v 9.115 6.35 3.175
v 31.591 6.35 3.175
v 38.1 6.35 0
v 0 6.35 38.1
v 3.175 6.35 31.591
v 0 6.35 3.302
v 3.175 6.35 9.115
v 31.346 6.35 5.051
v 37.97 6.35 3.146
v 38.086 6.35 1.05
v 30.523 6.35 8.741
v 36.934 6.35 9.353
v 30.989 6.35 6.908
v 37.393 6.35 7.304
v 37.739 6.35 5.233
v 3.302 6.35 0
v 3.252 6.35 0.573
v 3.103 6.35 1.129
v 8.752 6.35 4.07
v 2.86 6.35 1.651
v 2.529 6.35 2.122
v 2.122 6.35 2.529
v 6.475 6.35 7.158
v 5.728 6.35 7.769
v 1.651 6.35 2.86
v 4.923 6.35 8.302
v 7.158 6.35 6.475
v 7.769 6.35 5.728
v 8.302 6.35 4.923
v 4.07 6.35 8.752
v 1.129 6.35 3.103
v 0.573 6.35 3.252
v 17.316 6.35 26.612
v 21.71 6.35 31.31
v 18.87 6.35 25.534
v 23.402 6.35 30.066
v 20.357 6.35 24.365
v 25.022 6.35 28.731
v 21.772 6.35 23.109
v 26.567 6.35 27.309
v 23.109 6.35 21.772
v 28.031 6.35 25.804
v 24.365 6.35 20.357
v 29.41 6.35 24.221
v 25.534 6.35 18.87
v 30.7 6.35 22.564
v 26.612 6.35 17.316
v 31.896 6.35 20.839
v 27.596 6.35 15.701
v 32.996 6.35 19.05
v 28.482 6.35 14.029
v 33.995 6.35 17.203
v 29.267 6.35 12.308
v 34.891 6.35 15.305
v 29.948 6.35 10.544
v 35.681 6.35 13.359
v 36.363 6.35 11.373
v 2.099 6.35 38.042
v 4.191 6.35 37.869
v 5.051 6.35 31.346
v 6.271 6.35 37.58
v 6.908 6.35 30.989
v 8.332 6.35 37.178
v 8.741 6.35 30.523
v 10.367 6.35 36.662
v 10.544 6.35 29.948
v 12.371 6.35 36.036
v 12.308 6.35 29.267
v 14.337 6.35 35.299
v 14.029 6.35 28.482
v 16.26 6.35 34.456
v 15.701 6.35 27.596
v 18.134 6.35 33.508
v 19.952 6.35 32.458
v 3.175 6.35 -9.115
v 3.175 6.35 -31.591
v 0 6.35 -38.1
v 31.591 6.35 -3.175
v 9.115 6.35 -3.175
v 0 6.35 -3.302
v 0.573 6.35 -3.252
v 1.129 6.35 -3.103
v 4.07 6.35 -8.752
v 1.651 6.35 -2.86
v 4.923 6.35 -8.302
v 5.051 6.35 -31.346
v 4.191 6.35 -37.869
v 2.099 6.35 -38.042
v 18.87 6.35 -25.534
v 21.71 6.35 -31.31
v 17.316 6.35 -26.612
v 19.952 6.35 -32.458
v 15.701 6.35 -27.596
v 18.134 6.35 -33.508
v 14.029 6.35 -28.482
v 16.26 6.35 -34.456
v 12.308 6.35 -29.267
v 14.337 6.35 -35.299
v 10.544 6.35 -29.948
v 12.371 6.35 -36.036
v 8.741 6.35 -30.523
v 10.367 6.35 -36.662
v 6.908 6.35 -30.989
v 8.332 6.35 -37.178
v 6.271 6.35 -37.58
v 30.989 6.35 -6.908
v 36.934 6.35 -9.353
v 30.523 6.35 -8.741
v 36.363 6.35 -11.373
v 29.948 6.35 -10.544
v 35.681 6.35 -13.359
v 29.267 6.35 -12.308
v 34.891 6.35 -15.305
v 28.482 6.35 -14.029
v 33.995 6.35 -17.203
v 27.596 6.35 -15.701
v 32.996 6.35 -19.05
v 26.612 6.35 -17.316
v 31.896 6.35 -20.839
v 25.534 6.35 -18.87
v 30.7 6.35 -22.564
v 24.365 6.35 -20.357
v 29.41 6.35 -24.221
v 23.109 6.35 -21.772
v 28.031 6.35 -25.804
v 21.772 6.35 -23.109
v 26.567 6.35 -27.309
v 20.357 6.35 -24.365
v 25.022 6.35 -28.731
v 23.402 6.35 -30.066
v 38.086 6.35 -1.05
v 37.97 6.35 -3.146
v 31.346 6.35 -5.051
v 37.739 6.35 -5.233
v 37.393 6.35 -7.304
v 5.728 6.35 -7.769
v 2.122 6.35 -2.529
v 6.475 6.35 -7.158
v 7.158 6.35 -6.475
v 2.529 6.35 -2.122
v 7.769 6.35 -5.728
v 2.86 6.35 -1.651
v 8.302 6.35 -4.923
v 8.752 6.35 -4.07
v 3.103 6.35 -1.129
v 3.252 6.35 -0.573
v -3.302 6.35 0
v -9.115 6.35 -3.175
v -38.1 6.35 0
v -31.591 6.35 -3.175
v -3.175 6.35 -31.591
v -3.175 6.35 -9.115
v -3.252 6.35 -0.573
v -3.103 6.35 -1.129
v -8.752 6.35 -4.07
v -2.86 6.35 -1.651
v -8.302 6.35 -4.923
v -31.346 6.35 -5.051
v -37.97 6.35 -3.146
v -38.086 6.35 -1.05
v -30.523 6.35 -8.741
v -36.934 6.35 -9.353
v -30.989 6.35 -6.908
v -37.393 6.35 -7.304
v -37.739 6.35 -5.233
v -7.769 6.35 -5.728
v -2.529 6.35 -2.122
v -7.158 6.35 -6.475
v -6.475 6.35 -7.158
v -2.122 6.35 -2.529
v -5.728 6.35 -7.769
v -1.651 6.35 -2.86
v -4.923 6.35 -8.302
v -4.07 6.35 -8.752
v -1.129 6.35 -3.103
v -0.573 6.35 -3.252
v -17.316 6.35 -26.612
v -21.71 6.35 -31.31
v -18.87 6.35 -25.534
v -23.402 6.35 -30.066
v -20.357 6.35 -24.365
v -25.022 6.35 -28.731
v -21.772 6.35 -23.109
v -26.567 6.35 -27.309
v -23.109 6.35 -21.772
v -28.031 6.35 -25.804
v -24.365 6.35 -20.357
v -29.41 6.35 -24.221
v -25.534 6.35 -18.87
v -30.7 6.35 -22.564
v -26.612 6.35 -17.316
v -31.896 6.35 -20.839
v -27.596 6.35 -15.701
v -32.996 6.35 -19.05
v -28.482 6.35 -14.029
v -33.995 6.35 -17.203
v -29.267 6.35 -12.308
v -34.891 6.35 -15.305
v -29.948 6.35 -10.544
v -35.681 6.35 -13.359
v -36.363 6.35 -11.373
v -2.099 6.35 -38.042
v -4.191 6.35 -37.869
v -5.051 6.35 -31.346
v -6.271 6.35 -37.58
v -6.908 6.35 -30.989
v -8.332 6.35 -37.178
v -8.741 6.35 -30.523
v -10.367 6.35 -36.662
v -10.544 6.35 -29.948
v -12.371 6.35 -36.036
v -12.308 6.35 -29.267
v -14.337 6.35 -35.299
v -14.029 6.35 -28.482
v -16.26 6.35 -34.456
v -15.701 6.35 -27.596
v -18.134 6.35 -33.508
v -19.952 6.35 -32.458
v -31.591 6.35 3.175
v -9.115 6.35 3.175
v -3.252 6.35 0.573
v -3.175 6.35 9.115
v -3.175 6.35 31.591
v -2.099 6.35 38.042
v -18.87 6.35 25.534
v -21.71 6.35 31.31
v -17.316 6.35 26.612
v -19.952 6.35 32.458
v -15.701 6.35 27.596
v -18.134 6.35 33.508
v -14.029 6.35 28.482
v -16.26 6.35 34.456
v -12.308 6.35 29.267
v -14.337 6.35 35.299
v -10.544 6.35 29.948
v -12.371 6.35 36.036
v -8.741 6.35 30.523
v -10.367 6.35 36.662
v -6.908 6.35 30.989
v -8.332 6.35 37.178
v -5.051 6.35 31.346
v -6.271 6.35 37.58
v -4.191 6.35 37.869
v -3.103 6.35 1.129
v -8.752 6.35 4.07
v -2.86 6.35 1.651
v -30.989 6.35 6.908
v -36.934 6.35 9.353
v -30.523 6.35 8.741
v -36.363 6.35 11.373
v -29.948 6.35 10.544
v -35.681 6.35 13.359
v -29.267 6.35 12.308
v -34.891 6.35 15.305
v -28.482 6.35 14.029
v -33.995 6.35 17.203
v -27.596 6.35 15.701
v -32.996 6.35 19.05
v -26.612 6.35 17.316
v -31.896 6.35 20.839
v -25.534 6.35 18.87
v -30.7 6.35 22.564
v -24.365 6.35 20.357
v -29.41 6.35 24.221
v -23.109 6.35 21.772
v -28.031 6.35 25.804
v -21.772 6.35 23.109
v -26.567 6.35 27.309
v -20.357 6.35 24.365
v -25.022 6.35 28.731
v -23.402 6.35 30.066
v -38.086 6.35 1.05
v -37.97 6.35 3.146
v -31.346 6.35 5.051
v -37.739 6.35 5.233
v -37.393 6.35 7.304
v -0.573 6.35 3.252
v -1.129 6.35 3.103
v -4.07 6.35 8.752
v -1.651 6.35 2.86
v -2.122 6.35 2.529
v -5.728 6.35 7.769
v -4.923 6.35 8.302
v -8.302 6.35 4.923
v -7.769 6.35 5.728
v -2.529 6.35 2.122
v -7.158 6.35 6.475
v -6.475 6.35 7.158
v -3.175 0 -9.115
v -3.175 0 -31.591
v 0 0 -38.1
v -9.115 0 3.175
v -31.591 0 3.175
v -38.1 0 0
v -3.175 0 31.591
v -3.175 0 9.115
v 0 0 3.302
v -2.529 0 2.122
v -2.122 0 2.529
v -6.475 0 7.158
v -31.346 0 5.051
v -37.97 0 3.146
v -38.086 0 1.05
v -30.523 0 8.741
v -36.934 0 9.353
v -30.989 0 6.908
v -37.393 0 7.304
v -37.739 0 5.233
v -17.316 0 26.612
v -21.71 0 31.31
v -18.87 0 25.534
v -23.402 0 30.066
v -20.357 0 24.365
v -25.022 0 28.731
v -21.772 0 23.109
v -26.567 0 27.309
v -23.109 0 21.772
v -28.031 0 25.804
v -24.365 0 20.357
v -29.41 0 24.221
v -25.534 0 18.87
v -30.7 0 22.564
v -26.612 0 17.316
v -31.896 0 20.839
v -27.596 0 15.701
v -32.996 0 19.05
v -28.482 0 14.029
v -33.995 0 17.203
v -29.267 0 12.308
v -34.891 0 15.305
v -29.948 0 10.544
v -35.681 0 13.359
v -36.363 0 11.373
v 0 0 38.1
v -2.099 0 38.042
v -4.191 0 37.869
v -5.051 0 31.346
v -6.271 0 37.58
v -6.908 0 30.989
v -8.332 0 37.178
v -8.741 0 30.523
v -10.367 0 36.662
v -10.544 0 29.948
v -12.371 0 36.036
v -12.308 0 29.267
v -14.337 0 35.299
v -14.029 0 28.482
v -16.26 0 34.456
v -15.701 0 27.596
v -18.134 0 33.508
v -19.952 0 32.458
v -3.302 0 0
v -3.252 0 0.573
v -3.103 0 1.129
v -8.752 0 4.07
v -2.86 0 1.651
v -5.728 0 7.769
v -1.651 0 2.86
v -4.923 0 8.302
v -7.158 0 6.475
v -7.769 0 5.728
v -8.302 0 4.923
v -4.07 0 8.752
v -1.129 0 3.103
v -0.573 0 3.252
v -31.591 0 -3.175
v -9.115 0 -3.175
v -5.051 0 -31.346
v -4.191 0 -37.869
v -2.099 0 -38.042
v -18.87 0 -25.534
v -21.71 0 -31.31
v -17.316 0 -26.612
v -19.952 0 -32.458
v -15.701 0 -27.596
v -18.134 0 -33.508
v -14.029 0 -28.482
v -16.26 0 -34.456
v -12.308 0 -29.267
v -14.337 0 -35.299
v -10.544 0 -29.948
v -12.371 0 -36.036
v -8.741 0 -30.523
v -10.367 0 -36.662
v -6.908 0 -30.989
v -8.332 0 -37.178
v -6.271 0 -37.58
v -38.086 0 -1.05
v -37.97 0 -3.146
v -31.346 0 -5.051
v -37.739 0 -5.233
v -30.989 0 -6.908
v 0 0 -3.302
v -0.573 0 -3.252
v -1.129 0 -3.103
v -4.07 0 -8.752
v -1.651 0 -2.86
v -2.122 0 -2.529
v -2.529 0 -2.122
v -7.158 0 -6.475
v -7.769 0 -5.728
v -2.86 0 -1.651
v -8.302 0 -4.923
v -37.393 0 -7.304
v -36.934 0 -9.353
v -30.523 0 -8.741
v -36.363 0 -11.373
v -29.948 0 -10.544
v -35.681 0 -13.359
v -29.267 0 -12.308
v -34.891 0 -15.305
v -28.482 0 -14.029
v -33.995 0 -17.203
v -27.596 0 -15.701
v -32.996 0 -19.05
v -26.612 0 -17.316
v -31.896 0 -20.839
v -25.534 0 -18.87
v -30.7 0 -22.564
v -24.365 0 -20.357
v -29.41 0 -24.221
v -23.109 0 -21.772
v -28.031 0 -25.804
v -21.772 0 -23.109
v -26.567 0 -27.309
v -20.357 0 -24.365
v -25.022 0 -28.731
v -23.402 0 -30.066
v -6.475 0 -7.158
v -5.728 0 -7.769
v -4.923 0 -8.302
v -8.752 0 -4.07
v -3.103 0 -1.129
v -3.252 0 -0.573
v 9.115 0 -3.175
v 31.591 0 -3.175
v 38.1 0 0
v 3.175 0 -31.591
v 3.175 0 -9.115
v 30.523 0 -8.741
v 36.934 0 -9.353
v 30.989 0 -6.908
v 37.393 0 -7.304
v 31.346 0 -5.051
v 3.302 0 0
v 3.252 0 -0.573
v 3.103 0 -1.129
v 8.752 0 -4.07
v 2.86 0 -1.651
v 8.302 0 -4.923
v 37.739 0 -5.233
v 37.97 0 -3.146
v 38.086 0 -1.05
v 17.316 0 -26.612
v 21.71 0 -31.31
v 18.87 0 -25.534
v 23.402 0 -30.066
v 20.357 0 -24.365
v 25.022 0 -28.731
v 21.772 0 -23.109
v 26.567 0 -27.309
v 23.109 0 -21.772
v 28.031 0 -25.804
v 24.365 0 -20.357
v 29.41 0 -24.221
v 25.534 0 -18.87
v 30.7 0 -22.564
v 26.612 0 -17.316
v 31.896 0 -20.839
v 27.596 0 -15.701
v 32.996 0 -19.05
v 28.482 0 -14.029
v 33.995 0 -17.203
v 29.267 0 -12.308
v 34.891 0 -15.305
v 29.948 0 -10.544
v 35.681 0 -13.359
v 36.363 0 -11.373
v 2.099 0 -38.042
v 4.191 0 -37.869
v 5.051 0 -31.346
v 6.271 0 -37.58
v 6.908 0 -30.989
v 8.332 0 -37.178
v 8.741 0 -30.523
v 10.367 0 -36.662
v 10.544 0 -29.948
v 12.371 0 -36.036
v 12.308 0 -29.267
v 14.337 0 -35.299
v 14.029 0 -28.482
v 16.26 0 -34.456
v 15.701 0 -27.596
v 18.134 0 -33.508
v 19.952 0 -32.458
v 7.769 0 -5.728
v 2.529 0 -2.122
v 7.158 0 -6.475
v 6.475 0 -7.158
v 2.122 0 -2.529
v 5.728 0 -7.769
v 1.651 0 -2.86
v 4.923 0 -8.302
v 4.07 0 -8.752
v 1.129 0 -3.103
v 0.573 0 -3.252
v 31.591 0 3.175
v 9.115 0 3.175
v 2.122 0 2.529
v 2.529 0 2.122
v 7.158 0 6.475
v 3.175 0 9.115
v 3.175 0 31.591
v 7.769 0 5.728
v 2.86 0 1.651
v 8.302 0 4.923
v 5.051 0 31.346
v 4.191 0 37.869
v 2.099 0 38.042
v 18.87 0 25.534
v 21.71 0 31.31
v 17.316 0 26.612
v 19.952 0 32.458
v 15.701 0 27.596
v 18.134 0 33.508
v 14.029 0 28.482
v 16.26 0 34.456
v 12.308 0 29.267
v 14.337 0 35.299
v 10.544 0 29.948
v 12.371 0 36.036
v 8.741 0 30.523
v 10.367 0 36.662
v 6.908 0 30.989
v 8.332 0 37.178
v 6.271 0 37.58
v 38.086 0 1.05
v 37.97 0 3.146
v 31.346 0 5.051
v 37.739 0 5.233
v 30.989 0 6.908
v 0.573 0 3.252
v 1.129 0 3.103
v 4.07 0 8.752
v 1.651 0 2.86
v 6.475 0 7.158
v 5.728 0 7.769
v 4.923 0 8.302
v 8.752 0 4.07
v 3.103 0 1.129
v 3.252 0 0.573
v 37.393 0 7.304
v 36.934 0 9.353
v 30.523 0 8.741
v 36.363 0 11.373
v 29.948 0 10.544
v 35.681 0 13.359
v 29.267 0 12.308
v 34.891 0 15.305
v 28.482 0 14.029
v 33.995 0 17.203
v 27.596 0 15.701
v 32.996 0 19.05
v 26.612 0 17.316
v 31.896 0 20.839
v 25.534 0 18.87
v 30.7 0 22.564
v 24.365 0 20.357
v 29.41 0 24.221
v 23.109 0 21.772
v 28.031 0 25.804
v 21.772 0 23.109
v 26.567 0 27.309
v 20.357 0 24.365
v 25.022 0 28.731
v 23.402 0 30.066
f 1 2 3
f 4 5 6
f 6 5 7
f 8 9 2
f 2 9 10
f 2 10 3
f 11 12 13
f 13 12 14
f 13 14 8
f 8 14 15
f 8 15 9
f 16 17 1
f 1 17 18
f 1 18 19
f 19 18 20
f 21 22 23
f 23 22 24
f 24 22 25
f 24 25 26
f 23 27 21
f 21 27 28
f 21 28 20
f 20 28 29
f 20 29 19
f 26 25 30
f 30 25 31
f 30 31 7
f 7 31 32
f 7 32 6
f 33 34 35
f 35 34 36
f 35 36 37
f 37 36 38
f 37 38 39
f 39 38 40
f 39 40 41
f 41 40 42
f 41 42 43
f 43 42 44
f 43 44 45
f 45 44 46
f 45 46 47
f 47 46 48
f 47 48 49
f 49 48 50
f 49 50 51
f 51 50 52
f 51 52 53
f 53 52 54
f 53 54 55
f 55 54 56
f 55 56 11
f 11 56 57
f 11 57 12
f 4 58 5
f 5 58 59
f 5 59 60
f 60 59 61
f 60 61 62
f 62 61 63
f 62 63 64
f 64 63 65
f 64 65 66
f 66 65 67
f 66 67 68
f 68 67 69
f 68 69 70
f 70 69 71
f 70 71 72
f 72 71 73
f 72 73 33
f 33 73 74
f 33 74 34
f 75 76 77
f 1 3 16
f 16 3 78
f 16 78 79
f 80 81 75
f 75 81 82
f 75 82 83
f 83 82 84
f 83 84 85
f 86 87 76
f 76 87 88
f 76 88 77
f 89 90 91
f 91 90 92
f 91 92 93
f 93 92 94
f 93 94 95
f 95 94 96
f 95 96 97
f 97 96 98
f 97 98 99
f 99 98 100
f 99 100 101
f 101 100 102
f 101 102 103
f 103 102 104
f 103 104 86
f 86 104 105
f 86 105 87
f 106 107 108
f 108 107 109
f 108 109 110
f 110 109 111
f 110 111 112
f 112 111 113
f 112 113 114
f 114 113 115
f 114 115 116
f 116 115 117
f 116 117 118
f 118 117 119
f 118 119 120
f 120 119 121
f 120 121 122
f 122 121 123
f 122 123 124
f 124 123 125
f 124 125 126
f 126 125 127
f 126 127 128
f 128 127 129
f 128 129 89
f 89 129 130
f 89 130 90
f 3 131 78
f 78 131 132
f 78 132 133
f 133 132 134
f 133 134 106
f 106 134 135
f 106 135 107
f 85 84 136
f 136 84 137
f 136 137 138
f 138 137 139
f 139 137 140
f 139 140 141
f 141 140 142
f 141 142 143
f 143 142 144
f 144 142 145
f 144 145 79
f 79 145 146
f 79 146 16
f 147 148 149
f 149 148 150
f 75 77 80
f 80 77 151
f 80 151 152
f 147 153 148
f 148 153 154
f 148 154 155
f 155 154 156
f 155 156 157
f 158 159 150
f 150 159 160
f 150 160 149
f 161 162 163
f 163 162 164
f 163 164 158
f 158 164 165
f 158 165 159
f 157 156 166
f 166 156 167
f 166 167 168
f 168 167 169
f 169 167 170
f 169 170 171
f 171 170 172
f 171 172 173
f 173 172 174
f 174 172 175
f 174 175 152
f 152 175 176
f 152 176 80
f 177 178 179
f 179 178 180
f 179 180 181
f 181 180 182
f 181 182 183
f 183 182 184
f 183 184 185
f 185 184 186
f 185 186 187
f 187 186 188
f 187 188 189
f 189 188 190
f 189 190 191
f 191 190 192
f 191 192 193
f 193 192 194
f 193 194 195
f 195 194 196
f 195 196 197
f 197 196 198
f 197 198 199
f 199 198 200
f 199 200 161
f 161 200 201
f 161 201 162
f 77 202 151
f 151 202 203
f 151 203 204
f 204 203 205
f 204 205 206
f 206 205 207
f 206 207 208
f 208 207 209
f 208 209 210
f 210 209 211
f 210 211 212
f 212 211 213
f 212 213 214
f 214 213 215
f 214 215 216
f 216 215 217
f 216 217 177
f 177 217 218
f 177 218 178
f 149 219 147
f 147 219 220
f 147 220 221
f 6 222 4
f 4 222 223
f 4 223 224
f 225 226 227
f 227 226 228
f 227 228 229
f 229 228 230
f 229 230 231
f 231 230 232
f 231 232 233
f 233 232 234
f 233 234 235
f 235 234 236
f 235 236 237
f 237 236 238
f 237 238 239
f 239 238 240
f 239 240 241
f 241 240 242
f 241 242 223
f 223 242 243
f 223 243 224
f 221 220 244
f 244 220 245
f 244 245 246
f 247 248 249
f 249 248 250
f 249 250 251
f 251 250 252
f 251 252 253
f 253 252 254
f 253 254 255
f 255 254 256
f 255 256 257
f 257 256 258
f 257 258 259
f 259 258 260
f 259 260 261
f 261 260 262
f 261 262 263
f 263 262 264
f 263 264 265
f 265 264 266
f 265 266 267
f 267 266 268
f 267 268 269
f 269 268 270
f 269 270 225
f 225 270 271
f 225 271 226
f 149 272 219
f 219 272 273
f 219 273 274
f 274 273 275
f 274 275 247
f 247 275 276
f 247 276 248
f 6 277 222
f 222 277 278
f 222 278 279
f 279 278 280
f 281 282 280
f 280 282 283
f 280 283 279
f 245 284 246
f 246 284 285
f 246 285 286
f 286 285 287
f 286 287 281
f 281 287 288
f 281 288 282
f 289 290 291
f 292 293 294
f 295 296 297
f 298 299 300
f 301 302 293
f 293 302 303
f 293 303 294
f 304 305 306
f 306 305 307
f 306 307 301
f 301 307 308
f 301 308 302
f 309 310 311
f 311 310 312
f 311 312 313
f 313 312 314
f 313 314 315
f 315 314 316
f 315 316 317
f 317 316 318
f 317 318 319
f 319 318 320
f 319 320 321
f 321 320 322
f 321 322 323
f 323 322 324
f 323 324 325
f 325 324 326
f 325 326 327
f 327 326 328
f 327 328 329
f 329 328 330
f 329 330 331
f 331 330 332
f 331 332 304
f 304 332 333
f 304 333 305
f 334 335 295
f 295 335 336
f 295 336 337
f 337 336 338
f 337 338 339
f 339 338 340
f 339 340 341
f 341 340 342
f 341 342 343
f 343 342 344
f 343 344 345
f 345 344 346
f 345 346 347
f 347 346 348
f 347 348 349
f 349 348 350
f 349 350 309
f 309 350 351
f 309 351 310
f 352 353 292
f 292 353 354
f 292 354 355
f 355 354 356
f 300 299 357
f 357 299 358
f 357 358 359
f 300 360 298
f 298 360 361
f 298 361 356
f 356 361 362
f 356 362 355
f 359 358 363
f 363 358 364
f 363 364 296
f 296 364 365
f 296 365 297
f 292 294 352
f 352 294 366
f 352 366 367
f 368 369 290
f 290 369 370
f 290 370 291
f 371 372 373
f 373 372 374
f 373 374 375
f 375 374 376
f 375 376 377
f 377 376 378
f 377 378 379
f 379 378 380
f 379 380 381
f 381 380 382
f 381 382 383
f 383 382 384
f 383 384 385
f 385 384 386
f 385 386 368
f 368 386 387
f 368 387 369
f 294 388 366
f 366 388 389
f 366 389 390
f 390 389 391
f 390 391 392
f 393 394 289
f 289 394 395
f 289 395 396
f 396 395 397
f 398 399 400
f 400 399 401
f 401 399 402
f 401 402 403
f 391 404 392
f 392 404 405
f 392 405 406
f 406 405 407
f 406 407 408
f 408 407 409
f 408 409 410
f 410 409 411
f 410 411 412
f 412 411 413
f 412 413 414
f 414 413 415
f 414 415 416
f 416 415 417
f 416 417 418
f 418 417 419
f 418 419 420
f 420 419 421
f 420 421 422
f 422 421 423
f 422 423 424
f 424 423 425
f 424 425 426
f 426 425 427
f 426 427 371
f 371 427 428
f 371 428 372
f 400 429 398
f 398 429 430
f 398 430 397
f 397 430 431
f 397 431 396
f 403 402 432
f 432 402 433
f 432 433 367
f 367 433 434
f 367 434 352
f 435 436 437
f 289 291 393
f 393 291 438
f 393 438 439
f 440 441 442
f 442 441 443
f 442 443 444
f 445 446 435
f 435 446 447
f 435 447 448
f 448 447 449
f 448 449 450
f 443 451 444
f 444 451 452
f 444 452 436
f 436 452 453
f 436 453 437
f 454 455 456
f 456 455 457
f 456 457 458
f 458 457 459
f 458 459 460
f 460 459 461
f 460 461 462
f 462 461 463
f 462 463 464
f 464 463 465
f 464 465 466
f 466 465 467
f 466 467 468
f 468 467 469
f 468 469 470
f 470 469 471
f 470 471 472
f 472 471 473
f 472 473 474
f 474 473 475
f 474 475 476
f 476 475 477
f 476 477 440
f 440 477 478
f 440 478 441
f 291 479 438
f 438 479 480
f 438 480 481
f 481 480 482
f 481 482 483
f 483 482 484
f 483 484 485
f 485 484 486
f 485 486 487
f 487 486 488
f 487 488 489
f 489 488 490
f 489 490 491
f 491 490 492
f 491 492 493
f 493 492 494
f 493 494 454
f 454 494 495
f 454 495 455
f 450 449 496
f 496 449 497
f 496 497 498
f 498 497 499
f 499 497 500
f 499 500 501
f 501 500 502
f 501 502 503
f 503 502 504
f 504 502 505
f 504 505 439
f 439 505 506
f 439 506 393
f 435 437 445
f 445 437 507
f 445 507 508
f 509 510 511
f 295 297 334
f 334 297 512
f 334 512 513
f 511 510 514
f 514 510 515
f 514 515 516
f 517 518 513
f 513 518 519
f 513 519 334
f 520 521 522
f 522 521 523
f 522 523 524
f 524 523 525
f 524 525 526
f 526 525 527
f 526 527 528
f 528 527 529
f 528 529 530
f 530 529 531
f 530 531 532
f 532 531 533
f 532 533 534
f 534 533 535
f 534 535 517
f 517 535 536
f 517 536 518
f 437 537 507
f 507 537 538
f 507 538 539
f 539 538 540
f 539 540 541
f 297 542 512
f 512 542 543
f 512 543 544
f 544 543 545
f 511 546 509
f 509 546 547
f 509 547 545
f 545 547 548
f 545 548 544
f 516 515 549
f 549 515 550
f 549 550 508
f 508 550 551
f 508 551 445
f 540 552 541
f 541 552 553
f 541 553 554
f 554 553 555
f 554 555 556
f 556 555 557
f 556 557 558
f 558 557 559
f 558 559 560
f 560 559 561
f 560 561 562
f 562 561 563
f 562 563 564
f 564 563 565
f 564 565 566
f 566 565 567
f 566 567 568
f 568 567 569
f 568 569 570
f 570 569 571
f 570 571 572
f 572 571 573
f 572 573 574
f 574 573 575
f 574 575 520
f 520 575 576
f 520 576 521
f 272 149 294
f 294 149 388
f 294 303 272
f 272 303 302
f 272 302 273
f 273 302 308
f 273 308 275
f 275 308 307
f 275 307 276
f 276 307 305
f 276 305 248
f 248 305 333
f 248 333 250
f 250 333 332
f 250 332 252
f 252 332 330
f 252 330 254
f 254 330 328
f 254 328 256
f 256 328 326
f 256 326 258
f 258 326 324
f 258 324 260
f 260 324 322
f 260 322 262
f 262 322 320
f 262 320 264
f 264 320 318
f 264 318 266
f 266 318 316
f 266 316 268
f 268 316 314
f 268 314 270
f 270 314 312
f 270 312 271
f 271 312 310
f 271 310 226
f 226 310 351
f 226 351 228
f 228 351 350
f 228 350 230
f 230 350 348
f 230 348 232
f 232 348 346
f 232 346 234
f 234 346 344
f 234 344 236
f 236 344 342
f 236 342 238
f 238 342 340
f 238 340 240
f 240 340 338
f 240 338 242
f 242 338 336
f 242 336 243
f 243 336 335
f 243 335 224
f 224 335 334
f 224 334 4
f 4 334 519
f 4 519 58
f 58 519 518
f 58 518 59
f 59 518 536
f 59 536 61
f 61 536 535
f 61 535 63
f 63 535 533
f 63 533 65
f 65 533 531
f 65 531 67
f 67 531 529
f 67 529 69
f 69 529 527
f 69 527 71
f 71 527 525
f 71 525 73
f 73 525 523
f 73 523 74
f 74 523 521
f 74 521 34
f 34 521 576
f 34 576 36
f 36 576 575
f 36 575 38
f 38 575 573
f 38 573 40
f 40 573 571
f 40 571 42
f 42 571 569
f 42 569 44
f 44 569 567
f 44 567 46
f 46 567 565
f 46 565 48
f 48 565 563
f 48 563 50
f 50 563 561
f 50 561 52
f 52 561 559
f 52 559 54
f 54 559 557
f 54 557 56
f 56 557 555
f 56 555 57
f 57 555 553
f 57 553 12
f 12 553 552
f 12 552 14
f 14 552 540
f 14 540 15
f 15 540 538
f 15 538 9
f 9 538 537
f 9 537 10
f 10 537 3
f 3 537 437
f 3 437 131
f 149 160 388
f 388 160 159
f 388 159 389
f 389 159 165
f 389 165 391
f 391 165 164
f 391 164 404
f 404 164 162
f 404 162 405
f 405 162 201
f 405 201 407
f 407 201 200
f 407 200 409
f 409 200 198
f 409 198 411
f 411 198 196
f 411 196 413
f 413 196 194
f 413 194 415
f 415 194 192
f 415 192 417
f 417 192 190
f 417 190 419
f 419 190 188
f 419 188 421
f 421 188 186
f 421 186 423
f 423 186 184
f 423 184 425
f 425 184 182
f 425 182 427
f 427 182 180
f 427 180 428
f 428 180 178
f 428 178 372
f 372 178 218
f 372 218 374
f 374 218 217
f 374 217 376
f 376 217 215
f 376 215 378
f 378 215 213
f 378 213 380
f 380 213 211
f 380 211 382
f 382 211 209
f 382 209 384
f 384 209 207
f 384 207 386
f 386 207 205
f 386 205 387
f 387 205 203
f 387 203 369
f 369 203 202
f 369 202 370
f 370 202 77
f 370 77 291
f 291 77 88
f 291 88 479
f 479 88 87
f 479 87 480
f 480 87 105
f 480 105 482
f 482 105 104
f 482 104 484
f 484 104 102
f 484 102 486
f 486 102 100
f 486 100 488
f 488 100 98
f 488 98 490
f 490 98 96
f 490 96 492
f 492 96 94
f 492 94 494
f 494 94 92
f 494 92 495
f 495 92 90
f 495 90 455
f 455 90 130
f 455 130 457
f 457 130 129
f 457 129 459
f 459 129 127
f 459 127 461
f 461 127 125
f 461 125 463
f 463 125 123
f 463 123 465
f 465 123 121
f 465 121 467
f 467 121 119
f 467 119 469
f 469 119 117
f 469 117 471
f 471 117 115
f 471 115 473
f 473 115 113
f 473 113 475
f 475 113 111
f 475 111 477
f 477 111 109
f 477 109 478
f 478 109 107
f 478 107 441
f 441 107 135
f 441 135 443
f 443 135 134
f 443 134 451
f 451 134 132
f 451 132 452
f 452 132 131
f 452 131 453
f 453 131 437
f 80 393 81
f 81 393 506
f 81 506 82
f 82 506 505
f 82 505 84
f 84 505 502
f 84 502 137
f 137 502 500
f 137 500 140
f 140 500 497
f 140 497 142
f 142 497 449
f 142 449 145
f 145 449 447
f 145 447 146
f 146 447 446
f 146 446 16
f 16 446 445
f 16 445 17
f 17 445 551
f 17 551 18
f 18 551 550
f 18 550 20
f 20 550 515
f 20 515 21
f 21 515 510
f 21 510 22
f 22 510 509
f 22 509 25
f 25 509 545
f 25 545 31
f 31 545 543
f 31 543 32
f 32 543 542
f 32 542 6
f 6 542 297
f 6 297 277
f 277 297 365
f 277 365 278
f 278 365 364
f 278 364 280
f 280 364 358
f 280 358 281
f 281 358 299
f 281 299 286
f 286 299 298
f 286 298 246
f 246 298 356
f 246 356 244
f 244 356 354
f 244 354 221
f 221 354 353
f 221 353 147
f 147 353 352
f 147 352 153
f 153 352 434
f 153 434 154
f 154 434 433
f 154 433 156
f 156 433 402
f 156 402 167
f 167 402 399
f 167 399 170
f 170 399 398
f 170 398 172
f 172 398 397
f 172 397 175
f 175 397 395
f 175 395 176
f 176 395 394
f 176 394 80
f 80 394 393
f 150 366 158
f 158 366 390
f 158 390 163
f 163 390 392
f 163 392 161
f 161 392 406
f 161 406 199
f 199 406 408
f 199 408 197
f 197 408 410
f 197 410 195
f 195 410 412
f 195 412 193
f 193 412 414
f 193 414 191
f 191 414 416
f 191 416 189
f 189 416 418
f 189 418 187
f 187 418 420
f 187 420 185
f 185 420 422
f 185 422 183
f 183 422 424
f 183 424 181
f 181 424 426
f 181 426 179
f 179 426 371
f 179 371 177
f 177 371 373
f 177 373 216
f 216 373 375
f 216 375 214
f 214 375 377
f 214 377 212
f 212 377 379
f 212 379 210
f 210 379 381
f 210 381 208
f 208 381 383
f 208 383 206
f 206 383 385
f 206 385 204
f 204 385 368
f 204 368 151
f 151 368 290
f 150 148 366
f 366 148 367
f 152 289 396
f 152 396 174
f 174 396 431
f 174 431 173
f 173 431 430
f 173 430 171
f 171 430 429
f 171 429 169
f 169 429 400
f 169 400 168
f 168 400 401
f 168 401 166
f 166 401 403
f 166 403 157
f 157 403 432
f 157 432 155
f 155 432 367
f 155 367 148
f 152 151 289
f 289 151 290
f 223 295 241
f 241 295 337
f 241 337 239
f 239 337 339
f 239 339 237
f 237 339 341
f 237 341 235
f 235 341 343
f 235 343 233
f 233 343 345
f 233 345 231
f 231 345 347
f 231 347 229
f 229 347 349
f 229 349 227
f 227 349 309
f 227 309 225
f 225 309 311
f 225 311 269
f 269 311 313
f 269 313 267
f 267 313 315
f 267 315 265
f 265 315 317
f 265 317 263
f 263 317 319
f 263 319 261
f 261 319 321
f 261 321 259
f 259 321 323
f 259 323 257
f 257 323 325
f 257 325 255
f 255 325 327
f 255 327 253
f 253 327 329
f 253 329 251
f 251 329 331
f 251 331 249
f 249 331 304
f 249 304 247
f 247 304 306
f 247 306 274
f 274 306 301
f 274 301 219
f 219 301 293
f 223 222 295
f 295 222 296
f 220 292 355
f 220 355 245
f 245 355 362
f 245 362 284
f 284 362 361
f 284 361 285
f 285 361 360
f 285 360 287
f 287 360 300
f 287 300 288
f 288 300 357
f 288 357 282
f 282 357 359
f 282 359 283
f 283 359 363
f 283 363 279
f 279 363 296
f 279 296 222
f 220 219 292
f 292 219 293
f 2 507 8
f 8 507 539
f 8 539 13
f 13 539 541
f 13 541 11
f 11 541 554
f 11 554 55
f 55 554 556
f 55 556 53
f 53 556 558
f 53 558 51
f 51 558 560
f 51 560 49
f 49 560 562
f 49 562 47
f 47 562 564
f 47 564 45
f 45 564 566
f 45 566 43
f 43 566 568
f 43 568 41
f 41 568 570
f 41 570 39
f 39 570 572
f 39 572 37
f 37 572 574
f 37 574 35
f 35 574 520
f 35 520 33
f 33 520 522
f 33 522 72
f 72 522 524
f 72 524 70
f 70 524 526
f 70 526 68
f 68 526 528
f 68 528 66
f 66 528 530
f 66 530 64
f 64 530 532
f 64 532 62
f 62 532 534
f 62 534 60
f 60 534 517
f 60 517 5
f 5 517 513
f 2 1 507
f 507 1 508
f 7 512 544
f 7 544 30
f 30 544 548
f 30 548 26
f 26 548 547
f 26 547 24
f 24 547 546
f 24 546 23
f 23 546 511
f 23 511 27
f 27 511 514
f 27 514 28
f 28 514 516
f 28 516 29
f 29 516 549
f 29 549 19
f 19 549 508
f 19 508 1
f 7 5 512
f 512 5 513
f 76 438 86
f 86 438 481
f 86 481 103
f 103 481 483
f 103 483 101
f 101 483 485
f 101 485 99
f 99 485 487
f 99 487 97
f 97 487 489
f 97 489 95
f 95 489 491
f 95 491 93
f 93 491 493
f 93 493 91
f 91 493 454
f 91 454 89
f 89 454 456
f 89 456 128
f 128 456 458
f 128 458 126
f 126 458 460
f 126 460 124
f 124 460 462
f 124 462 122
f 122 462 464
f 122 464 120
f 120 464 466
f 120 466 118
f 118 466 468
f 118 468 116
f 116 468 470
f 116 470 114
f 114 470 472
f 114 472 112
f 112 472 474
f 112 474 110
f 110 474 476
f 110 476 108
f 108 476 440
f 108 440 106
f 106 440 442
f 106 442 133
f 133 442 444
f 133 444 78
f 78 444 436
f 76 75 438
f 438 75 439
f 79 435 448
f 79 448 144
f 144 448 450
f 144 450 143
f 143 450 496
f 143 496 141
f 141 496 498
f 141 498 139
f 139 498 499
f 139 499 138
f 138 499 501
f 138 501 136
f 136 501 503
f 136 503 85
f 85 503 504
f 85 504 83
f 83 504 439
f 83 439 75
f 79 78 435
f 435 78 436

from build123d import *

# Parameters (mm, degrees)
SKETCH1_R           = 38.1
SKETCH1_R_2         = 3.302
BOSS_EXTRUDE1_DEPTH = 6.35
CUT_EXTRUDE4_DEPTH  = 55.254423783
CIRPATTERN1_COUNT   = 4


with BuildPart() as part:
    # Sketch1 → Boss-Extrude1 (new body)
    with BuildSketch(Plane(origin=(0, 0, 0), x_dir=(1, 0, 0), z_dir=(0, 1, 0))):
        with Locations(Location((0, 0, 0), (0, 0, 270))):
            Circle(SKETCH1_R)
        with Locations(Location((0, 0, 0), (0, 0, 270))):
            Circle(SKETCH1_R_2, mode=Mode.SUBTRACT)
    extrude(amount=BOSS_EXTRUDE1_DEPTH)

    # Sketch2 → Cut-Extrude4 (cut, through all)
    with BuildSketch(Plane(origin=(0, 0, 0), x_dir=(1, 0, 0), z_dir=(0, 1, 0))):
        with BuildLine():
            Line((-31.590851128, 3.175), (-9.114849368, 3.175))
            ThreePointArc((-9.114849368, 3.175), (-6.824994652, 6.824994652), (-3.175, 9.114849368))
            Line((-3.175, 9.114849368), (-3.175, 31.590851128))
            ThreePointArc((-3.175, 31.590851128), (-22.450640303, 22.450640303), (-31.590851128, 3.175))
        make_face()
    cut_extrude4 = extrude(amount=CUT_EXTRUDE4_DEPTH, mode=Mode.SUBTRACT)

    # CirPattern1: Cut-Extrude4 ×4 about axis
    cirpattern1_axis = Axis((0, 0, 0), (0, 1, 0))
    for i in range(1, CIRPATTERN1_COUNT):
        add(cut_extrude4.rotate(cirpattern1_axis, i * 360 / CIRPATTERN1_COUNT), mode=Mode.SUBTRACT)


solid = part.part
